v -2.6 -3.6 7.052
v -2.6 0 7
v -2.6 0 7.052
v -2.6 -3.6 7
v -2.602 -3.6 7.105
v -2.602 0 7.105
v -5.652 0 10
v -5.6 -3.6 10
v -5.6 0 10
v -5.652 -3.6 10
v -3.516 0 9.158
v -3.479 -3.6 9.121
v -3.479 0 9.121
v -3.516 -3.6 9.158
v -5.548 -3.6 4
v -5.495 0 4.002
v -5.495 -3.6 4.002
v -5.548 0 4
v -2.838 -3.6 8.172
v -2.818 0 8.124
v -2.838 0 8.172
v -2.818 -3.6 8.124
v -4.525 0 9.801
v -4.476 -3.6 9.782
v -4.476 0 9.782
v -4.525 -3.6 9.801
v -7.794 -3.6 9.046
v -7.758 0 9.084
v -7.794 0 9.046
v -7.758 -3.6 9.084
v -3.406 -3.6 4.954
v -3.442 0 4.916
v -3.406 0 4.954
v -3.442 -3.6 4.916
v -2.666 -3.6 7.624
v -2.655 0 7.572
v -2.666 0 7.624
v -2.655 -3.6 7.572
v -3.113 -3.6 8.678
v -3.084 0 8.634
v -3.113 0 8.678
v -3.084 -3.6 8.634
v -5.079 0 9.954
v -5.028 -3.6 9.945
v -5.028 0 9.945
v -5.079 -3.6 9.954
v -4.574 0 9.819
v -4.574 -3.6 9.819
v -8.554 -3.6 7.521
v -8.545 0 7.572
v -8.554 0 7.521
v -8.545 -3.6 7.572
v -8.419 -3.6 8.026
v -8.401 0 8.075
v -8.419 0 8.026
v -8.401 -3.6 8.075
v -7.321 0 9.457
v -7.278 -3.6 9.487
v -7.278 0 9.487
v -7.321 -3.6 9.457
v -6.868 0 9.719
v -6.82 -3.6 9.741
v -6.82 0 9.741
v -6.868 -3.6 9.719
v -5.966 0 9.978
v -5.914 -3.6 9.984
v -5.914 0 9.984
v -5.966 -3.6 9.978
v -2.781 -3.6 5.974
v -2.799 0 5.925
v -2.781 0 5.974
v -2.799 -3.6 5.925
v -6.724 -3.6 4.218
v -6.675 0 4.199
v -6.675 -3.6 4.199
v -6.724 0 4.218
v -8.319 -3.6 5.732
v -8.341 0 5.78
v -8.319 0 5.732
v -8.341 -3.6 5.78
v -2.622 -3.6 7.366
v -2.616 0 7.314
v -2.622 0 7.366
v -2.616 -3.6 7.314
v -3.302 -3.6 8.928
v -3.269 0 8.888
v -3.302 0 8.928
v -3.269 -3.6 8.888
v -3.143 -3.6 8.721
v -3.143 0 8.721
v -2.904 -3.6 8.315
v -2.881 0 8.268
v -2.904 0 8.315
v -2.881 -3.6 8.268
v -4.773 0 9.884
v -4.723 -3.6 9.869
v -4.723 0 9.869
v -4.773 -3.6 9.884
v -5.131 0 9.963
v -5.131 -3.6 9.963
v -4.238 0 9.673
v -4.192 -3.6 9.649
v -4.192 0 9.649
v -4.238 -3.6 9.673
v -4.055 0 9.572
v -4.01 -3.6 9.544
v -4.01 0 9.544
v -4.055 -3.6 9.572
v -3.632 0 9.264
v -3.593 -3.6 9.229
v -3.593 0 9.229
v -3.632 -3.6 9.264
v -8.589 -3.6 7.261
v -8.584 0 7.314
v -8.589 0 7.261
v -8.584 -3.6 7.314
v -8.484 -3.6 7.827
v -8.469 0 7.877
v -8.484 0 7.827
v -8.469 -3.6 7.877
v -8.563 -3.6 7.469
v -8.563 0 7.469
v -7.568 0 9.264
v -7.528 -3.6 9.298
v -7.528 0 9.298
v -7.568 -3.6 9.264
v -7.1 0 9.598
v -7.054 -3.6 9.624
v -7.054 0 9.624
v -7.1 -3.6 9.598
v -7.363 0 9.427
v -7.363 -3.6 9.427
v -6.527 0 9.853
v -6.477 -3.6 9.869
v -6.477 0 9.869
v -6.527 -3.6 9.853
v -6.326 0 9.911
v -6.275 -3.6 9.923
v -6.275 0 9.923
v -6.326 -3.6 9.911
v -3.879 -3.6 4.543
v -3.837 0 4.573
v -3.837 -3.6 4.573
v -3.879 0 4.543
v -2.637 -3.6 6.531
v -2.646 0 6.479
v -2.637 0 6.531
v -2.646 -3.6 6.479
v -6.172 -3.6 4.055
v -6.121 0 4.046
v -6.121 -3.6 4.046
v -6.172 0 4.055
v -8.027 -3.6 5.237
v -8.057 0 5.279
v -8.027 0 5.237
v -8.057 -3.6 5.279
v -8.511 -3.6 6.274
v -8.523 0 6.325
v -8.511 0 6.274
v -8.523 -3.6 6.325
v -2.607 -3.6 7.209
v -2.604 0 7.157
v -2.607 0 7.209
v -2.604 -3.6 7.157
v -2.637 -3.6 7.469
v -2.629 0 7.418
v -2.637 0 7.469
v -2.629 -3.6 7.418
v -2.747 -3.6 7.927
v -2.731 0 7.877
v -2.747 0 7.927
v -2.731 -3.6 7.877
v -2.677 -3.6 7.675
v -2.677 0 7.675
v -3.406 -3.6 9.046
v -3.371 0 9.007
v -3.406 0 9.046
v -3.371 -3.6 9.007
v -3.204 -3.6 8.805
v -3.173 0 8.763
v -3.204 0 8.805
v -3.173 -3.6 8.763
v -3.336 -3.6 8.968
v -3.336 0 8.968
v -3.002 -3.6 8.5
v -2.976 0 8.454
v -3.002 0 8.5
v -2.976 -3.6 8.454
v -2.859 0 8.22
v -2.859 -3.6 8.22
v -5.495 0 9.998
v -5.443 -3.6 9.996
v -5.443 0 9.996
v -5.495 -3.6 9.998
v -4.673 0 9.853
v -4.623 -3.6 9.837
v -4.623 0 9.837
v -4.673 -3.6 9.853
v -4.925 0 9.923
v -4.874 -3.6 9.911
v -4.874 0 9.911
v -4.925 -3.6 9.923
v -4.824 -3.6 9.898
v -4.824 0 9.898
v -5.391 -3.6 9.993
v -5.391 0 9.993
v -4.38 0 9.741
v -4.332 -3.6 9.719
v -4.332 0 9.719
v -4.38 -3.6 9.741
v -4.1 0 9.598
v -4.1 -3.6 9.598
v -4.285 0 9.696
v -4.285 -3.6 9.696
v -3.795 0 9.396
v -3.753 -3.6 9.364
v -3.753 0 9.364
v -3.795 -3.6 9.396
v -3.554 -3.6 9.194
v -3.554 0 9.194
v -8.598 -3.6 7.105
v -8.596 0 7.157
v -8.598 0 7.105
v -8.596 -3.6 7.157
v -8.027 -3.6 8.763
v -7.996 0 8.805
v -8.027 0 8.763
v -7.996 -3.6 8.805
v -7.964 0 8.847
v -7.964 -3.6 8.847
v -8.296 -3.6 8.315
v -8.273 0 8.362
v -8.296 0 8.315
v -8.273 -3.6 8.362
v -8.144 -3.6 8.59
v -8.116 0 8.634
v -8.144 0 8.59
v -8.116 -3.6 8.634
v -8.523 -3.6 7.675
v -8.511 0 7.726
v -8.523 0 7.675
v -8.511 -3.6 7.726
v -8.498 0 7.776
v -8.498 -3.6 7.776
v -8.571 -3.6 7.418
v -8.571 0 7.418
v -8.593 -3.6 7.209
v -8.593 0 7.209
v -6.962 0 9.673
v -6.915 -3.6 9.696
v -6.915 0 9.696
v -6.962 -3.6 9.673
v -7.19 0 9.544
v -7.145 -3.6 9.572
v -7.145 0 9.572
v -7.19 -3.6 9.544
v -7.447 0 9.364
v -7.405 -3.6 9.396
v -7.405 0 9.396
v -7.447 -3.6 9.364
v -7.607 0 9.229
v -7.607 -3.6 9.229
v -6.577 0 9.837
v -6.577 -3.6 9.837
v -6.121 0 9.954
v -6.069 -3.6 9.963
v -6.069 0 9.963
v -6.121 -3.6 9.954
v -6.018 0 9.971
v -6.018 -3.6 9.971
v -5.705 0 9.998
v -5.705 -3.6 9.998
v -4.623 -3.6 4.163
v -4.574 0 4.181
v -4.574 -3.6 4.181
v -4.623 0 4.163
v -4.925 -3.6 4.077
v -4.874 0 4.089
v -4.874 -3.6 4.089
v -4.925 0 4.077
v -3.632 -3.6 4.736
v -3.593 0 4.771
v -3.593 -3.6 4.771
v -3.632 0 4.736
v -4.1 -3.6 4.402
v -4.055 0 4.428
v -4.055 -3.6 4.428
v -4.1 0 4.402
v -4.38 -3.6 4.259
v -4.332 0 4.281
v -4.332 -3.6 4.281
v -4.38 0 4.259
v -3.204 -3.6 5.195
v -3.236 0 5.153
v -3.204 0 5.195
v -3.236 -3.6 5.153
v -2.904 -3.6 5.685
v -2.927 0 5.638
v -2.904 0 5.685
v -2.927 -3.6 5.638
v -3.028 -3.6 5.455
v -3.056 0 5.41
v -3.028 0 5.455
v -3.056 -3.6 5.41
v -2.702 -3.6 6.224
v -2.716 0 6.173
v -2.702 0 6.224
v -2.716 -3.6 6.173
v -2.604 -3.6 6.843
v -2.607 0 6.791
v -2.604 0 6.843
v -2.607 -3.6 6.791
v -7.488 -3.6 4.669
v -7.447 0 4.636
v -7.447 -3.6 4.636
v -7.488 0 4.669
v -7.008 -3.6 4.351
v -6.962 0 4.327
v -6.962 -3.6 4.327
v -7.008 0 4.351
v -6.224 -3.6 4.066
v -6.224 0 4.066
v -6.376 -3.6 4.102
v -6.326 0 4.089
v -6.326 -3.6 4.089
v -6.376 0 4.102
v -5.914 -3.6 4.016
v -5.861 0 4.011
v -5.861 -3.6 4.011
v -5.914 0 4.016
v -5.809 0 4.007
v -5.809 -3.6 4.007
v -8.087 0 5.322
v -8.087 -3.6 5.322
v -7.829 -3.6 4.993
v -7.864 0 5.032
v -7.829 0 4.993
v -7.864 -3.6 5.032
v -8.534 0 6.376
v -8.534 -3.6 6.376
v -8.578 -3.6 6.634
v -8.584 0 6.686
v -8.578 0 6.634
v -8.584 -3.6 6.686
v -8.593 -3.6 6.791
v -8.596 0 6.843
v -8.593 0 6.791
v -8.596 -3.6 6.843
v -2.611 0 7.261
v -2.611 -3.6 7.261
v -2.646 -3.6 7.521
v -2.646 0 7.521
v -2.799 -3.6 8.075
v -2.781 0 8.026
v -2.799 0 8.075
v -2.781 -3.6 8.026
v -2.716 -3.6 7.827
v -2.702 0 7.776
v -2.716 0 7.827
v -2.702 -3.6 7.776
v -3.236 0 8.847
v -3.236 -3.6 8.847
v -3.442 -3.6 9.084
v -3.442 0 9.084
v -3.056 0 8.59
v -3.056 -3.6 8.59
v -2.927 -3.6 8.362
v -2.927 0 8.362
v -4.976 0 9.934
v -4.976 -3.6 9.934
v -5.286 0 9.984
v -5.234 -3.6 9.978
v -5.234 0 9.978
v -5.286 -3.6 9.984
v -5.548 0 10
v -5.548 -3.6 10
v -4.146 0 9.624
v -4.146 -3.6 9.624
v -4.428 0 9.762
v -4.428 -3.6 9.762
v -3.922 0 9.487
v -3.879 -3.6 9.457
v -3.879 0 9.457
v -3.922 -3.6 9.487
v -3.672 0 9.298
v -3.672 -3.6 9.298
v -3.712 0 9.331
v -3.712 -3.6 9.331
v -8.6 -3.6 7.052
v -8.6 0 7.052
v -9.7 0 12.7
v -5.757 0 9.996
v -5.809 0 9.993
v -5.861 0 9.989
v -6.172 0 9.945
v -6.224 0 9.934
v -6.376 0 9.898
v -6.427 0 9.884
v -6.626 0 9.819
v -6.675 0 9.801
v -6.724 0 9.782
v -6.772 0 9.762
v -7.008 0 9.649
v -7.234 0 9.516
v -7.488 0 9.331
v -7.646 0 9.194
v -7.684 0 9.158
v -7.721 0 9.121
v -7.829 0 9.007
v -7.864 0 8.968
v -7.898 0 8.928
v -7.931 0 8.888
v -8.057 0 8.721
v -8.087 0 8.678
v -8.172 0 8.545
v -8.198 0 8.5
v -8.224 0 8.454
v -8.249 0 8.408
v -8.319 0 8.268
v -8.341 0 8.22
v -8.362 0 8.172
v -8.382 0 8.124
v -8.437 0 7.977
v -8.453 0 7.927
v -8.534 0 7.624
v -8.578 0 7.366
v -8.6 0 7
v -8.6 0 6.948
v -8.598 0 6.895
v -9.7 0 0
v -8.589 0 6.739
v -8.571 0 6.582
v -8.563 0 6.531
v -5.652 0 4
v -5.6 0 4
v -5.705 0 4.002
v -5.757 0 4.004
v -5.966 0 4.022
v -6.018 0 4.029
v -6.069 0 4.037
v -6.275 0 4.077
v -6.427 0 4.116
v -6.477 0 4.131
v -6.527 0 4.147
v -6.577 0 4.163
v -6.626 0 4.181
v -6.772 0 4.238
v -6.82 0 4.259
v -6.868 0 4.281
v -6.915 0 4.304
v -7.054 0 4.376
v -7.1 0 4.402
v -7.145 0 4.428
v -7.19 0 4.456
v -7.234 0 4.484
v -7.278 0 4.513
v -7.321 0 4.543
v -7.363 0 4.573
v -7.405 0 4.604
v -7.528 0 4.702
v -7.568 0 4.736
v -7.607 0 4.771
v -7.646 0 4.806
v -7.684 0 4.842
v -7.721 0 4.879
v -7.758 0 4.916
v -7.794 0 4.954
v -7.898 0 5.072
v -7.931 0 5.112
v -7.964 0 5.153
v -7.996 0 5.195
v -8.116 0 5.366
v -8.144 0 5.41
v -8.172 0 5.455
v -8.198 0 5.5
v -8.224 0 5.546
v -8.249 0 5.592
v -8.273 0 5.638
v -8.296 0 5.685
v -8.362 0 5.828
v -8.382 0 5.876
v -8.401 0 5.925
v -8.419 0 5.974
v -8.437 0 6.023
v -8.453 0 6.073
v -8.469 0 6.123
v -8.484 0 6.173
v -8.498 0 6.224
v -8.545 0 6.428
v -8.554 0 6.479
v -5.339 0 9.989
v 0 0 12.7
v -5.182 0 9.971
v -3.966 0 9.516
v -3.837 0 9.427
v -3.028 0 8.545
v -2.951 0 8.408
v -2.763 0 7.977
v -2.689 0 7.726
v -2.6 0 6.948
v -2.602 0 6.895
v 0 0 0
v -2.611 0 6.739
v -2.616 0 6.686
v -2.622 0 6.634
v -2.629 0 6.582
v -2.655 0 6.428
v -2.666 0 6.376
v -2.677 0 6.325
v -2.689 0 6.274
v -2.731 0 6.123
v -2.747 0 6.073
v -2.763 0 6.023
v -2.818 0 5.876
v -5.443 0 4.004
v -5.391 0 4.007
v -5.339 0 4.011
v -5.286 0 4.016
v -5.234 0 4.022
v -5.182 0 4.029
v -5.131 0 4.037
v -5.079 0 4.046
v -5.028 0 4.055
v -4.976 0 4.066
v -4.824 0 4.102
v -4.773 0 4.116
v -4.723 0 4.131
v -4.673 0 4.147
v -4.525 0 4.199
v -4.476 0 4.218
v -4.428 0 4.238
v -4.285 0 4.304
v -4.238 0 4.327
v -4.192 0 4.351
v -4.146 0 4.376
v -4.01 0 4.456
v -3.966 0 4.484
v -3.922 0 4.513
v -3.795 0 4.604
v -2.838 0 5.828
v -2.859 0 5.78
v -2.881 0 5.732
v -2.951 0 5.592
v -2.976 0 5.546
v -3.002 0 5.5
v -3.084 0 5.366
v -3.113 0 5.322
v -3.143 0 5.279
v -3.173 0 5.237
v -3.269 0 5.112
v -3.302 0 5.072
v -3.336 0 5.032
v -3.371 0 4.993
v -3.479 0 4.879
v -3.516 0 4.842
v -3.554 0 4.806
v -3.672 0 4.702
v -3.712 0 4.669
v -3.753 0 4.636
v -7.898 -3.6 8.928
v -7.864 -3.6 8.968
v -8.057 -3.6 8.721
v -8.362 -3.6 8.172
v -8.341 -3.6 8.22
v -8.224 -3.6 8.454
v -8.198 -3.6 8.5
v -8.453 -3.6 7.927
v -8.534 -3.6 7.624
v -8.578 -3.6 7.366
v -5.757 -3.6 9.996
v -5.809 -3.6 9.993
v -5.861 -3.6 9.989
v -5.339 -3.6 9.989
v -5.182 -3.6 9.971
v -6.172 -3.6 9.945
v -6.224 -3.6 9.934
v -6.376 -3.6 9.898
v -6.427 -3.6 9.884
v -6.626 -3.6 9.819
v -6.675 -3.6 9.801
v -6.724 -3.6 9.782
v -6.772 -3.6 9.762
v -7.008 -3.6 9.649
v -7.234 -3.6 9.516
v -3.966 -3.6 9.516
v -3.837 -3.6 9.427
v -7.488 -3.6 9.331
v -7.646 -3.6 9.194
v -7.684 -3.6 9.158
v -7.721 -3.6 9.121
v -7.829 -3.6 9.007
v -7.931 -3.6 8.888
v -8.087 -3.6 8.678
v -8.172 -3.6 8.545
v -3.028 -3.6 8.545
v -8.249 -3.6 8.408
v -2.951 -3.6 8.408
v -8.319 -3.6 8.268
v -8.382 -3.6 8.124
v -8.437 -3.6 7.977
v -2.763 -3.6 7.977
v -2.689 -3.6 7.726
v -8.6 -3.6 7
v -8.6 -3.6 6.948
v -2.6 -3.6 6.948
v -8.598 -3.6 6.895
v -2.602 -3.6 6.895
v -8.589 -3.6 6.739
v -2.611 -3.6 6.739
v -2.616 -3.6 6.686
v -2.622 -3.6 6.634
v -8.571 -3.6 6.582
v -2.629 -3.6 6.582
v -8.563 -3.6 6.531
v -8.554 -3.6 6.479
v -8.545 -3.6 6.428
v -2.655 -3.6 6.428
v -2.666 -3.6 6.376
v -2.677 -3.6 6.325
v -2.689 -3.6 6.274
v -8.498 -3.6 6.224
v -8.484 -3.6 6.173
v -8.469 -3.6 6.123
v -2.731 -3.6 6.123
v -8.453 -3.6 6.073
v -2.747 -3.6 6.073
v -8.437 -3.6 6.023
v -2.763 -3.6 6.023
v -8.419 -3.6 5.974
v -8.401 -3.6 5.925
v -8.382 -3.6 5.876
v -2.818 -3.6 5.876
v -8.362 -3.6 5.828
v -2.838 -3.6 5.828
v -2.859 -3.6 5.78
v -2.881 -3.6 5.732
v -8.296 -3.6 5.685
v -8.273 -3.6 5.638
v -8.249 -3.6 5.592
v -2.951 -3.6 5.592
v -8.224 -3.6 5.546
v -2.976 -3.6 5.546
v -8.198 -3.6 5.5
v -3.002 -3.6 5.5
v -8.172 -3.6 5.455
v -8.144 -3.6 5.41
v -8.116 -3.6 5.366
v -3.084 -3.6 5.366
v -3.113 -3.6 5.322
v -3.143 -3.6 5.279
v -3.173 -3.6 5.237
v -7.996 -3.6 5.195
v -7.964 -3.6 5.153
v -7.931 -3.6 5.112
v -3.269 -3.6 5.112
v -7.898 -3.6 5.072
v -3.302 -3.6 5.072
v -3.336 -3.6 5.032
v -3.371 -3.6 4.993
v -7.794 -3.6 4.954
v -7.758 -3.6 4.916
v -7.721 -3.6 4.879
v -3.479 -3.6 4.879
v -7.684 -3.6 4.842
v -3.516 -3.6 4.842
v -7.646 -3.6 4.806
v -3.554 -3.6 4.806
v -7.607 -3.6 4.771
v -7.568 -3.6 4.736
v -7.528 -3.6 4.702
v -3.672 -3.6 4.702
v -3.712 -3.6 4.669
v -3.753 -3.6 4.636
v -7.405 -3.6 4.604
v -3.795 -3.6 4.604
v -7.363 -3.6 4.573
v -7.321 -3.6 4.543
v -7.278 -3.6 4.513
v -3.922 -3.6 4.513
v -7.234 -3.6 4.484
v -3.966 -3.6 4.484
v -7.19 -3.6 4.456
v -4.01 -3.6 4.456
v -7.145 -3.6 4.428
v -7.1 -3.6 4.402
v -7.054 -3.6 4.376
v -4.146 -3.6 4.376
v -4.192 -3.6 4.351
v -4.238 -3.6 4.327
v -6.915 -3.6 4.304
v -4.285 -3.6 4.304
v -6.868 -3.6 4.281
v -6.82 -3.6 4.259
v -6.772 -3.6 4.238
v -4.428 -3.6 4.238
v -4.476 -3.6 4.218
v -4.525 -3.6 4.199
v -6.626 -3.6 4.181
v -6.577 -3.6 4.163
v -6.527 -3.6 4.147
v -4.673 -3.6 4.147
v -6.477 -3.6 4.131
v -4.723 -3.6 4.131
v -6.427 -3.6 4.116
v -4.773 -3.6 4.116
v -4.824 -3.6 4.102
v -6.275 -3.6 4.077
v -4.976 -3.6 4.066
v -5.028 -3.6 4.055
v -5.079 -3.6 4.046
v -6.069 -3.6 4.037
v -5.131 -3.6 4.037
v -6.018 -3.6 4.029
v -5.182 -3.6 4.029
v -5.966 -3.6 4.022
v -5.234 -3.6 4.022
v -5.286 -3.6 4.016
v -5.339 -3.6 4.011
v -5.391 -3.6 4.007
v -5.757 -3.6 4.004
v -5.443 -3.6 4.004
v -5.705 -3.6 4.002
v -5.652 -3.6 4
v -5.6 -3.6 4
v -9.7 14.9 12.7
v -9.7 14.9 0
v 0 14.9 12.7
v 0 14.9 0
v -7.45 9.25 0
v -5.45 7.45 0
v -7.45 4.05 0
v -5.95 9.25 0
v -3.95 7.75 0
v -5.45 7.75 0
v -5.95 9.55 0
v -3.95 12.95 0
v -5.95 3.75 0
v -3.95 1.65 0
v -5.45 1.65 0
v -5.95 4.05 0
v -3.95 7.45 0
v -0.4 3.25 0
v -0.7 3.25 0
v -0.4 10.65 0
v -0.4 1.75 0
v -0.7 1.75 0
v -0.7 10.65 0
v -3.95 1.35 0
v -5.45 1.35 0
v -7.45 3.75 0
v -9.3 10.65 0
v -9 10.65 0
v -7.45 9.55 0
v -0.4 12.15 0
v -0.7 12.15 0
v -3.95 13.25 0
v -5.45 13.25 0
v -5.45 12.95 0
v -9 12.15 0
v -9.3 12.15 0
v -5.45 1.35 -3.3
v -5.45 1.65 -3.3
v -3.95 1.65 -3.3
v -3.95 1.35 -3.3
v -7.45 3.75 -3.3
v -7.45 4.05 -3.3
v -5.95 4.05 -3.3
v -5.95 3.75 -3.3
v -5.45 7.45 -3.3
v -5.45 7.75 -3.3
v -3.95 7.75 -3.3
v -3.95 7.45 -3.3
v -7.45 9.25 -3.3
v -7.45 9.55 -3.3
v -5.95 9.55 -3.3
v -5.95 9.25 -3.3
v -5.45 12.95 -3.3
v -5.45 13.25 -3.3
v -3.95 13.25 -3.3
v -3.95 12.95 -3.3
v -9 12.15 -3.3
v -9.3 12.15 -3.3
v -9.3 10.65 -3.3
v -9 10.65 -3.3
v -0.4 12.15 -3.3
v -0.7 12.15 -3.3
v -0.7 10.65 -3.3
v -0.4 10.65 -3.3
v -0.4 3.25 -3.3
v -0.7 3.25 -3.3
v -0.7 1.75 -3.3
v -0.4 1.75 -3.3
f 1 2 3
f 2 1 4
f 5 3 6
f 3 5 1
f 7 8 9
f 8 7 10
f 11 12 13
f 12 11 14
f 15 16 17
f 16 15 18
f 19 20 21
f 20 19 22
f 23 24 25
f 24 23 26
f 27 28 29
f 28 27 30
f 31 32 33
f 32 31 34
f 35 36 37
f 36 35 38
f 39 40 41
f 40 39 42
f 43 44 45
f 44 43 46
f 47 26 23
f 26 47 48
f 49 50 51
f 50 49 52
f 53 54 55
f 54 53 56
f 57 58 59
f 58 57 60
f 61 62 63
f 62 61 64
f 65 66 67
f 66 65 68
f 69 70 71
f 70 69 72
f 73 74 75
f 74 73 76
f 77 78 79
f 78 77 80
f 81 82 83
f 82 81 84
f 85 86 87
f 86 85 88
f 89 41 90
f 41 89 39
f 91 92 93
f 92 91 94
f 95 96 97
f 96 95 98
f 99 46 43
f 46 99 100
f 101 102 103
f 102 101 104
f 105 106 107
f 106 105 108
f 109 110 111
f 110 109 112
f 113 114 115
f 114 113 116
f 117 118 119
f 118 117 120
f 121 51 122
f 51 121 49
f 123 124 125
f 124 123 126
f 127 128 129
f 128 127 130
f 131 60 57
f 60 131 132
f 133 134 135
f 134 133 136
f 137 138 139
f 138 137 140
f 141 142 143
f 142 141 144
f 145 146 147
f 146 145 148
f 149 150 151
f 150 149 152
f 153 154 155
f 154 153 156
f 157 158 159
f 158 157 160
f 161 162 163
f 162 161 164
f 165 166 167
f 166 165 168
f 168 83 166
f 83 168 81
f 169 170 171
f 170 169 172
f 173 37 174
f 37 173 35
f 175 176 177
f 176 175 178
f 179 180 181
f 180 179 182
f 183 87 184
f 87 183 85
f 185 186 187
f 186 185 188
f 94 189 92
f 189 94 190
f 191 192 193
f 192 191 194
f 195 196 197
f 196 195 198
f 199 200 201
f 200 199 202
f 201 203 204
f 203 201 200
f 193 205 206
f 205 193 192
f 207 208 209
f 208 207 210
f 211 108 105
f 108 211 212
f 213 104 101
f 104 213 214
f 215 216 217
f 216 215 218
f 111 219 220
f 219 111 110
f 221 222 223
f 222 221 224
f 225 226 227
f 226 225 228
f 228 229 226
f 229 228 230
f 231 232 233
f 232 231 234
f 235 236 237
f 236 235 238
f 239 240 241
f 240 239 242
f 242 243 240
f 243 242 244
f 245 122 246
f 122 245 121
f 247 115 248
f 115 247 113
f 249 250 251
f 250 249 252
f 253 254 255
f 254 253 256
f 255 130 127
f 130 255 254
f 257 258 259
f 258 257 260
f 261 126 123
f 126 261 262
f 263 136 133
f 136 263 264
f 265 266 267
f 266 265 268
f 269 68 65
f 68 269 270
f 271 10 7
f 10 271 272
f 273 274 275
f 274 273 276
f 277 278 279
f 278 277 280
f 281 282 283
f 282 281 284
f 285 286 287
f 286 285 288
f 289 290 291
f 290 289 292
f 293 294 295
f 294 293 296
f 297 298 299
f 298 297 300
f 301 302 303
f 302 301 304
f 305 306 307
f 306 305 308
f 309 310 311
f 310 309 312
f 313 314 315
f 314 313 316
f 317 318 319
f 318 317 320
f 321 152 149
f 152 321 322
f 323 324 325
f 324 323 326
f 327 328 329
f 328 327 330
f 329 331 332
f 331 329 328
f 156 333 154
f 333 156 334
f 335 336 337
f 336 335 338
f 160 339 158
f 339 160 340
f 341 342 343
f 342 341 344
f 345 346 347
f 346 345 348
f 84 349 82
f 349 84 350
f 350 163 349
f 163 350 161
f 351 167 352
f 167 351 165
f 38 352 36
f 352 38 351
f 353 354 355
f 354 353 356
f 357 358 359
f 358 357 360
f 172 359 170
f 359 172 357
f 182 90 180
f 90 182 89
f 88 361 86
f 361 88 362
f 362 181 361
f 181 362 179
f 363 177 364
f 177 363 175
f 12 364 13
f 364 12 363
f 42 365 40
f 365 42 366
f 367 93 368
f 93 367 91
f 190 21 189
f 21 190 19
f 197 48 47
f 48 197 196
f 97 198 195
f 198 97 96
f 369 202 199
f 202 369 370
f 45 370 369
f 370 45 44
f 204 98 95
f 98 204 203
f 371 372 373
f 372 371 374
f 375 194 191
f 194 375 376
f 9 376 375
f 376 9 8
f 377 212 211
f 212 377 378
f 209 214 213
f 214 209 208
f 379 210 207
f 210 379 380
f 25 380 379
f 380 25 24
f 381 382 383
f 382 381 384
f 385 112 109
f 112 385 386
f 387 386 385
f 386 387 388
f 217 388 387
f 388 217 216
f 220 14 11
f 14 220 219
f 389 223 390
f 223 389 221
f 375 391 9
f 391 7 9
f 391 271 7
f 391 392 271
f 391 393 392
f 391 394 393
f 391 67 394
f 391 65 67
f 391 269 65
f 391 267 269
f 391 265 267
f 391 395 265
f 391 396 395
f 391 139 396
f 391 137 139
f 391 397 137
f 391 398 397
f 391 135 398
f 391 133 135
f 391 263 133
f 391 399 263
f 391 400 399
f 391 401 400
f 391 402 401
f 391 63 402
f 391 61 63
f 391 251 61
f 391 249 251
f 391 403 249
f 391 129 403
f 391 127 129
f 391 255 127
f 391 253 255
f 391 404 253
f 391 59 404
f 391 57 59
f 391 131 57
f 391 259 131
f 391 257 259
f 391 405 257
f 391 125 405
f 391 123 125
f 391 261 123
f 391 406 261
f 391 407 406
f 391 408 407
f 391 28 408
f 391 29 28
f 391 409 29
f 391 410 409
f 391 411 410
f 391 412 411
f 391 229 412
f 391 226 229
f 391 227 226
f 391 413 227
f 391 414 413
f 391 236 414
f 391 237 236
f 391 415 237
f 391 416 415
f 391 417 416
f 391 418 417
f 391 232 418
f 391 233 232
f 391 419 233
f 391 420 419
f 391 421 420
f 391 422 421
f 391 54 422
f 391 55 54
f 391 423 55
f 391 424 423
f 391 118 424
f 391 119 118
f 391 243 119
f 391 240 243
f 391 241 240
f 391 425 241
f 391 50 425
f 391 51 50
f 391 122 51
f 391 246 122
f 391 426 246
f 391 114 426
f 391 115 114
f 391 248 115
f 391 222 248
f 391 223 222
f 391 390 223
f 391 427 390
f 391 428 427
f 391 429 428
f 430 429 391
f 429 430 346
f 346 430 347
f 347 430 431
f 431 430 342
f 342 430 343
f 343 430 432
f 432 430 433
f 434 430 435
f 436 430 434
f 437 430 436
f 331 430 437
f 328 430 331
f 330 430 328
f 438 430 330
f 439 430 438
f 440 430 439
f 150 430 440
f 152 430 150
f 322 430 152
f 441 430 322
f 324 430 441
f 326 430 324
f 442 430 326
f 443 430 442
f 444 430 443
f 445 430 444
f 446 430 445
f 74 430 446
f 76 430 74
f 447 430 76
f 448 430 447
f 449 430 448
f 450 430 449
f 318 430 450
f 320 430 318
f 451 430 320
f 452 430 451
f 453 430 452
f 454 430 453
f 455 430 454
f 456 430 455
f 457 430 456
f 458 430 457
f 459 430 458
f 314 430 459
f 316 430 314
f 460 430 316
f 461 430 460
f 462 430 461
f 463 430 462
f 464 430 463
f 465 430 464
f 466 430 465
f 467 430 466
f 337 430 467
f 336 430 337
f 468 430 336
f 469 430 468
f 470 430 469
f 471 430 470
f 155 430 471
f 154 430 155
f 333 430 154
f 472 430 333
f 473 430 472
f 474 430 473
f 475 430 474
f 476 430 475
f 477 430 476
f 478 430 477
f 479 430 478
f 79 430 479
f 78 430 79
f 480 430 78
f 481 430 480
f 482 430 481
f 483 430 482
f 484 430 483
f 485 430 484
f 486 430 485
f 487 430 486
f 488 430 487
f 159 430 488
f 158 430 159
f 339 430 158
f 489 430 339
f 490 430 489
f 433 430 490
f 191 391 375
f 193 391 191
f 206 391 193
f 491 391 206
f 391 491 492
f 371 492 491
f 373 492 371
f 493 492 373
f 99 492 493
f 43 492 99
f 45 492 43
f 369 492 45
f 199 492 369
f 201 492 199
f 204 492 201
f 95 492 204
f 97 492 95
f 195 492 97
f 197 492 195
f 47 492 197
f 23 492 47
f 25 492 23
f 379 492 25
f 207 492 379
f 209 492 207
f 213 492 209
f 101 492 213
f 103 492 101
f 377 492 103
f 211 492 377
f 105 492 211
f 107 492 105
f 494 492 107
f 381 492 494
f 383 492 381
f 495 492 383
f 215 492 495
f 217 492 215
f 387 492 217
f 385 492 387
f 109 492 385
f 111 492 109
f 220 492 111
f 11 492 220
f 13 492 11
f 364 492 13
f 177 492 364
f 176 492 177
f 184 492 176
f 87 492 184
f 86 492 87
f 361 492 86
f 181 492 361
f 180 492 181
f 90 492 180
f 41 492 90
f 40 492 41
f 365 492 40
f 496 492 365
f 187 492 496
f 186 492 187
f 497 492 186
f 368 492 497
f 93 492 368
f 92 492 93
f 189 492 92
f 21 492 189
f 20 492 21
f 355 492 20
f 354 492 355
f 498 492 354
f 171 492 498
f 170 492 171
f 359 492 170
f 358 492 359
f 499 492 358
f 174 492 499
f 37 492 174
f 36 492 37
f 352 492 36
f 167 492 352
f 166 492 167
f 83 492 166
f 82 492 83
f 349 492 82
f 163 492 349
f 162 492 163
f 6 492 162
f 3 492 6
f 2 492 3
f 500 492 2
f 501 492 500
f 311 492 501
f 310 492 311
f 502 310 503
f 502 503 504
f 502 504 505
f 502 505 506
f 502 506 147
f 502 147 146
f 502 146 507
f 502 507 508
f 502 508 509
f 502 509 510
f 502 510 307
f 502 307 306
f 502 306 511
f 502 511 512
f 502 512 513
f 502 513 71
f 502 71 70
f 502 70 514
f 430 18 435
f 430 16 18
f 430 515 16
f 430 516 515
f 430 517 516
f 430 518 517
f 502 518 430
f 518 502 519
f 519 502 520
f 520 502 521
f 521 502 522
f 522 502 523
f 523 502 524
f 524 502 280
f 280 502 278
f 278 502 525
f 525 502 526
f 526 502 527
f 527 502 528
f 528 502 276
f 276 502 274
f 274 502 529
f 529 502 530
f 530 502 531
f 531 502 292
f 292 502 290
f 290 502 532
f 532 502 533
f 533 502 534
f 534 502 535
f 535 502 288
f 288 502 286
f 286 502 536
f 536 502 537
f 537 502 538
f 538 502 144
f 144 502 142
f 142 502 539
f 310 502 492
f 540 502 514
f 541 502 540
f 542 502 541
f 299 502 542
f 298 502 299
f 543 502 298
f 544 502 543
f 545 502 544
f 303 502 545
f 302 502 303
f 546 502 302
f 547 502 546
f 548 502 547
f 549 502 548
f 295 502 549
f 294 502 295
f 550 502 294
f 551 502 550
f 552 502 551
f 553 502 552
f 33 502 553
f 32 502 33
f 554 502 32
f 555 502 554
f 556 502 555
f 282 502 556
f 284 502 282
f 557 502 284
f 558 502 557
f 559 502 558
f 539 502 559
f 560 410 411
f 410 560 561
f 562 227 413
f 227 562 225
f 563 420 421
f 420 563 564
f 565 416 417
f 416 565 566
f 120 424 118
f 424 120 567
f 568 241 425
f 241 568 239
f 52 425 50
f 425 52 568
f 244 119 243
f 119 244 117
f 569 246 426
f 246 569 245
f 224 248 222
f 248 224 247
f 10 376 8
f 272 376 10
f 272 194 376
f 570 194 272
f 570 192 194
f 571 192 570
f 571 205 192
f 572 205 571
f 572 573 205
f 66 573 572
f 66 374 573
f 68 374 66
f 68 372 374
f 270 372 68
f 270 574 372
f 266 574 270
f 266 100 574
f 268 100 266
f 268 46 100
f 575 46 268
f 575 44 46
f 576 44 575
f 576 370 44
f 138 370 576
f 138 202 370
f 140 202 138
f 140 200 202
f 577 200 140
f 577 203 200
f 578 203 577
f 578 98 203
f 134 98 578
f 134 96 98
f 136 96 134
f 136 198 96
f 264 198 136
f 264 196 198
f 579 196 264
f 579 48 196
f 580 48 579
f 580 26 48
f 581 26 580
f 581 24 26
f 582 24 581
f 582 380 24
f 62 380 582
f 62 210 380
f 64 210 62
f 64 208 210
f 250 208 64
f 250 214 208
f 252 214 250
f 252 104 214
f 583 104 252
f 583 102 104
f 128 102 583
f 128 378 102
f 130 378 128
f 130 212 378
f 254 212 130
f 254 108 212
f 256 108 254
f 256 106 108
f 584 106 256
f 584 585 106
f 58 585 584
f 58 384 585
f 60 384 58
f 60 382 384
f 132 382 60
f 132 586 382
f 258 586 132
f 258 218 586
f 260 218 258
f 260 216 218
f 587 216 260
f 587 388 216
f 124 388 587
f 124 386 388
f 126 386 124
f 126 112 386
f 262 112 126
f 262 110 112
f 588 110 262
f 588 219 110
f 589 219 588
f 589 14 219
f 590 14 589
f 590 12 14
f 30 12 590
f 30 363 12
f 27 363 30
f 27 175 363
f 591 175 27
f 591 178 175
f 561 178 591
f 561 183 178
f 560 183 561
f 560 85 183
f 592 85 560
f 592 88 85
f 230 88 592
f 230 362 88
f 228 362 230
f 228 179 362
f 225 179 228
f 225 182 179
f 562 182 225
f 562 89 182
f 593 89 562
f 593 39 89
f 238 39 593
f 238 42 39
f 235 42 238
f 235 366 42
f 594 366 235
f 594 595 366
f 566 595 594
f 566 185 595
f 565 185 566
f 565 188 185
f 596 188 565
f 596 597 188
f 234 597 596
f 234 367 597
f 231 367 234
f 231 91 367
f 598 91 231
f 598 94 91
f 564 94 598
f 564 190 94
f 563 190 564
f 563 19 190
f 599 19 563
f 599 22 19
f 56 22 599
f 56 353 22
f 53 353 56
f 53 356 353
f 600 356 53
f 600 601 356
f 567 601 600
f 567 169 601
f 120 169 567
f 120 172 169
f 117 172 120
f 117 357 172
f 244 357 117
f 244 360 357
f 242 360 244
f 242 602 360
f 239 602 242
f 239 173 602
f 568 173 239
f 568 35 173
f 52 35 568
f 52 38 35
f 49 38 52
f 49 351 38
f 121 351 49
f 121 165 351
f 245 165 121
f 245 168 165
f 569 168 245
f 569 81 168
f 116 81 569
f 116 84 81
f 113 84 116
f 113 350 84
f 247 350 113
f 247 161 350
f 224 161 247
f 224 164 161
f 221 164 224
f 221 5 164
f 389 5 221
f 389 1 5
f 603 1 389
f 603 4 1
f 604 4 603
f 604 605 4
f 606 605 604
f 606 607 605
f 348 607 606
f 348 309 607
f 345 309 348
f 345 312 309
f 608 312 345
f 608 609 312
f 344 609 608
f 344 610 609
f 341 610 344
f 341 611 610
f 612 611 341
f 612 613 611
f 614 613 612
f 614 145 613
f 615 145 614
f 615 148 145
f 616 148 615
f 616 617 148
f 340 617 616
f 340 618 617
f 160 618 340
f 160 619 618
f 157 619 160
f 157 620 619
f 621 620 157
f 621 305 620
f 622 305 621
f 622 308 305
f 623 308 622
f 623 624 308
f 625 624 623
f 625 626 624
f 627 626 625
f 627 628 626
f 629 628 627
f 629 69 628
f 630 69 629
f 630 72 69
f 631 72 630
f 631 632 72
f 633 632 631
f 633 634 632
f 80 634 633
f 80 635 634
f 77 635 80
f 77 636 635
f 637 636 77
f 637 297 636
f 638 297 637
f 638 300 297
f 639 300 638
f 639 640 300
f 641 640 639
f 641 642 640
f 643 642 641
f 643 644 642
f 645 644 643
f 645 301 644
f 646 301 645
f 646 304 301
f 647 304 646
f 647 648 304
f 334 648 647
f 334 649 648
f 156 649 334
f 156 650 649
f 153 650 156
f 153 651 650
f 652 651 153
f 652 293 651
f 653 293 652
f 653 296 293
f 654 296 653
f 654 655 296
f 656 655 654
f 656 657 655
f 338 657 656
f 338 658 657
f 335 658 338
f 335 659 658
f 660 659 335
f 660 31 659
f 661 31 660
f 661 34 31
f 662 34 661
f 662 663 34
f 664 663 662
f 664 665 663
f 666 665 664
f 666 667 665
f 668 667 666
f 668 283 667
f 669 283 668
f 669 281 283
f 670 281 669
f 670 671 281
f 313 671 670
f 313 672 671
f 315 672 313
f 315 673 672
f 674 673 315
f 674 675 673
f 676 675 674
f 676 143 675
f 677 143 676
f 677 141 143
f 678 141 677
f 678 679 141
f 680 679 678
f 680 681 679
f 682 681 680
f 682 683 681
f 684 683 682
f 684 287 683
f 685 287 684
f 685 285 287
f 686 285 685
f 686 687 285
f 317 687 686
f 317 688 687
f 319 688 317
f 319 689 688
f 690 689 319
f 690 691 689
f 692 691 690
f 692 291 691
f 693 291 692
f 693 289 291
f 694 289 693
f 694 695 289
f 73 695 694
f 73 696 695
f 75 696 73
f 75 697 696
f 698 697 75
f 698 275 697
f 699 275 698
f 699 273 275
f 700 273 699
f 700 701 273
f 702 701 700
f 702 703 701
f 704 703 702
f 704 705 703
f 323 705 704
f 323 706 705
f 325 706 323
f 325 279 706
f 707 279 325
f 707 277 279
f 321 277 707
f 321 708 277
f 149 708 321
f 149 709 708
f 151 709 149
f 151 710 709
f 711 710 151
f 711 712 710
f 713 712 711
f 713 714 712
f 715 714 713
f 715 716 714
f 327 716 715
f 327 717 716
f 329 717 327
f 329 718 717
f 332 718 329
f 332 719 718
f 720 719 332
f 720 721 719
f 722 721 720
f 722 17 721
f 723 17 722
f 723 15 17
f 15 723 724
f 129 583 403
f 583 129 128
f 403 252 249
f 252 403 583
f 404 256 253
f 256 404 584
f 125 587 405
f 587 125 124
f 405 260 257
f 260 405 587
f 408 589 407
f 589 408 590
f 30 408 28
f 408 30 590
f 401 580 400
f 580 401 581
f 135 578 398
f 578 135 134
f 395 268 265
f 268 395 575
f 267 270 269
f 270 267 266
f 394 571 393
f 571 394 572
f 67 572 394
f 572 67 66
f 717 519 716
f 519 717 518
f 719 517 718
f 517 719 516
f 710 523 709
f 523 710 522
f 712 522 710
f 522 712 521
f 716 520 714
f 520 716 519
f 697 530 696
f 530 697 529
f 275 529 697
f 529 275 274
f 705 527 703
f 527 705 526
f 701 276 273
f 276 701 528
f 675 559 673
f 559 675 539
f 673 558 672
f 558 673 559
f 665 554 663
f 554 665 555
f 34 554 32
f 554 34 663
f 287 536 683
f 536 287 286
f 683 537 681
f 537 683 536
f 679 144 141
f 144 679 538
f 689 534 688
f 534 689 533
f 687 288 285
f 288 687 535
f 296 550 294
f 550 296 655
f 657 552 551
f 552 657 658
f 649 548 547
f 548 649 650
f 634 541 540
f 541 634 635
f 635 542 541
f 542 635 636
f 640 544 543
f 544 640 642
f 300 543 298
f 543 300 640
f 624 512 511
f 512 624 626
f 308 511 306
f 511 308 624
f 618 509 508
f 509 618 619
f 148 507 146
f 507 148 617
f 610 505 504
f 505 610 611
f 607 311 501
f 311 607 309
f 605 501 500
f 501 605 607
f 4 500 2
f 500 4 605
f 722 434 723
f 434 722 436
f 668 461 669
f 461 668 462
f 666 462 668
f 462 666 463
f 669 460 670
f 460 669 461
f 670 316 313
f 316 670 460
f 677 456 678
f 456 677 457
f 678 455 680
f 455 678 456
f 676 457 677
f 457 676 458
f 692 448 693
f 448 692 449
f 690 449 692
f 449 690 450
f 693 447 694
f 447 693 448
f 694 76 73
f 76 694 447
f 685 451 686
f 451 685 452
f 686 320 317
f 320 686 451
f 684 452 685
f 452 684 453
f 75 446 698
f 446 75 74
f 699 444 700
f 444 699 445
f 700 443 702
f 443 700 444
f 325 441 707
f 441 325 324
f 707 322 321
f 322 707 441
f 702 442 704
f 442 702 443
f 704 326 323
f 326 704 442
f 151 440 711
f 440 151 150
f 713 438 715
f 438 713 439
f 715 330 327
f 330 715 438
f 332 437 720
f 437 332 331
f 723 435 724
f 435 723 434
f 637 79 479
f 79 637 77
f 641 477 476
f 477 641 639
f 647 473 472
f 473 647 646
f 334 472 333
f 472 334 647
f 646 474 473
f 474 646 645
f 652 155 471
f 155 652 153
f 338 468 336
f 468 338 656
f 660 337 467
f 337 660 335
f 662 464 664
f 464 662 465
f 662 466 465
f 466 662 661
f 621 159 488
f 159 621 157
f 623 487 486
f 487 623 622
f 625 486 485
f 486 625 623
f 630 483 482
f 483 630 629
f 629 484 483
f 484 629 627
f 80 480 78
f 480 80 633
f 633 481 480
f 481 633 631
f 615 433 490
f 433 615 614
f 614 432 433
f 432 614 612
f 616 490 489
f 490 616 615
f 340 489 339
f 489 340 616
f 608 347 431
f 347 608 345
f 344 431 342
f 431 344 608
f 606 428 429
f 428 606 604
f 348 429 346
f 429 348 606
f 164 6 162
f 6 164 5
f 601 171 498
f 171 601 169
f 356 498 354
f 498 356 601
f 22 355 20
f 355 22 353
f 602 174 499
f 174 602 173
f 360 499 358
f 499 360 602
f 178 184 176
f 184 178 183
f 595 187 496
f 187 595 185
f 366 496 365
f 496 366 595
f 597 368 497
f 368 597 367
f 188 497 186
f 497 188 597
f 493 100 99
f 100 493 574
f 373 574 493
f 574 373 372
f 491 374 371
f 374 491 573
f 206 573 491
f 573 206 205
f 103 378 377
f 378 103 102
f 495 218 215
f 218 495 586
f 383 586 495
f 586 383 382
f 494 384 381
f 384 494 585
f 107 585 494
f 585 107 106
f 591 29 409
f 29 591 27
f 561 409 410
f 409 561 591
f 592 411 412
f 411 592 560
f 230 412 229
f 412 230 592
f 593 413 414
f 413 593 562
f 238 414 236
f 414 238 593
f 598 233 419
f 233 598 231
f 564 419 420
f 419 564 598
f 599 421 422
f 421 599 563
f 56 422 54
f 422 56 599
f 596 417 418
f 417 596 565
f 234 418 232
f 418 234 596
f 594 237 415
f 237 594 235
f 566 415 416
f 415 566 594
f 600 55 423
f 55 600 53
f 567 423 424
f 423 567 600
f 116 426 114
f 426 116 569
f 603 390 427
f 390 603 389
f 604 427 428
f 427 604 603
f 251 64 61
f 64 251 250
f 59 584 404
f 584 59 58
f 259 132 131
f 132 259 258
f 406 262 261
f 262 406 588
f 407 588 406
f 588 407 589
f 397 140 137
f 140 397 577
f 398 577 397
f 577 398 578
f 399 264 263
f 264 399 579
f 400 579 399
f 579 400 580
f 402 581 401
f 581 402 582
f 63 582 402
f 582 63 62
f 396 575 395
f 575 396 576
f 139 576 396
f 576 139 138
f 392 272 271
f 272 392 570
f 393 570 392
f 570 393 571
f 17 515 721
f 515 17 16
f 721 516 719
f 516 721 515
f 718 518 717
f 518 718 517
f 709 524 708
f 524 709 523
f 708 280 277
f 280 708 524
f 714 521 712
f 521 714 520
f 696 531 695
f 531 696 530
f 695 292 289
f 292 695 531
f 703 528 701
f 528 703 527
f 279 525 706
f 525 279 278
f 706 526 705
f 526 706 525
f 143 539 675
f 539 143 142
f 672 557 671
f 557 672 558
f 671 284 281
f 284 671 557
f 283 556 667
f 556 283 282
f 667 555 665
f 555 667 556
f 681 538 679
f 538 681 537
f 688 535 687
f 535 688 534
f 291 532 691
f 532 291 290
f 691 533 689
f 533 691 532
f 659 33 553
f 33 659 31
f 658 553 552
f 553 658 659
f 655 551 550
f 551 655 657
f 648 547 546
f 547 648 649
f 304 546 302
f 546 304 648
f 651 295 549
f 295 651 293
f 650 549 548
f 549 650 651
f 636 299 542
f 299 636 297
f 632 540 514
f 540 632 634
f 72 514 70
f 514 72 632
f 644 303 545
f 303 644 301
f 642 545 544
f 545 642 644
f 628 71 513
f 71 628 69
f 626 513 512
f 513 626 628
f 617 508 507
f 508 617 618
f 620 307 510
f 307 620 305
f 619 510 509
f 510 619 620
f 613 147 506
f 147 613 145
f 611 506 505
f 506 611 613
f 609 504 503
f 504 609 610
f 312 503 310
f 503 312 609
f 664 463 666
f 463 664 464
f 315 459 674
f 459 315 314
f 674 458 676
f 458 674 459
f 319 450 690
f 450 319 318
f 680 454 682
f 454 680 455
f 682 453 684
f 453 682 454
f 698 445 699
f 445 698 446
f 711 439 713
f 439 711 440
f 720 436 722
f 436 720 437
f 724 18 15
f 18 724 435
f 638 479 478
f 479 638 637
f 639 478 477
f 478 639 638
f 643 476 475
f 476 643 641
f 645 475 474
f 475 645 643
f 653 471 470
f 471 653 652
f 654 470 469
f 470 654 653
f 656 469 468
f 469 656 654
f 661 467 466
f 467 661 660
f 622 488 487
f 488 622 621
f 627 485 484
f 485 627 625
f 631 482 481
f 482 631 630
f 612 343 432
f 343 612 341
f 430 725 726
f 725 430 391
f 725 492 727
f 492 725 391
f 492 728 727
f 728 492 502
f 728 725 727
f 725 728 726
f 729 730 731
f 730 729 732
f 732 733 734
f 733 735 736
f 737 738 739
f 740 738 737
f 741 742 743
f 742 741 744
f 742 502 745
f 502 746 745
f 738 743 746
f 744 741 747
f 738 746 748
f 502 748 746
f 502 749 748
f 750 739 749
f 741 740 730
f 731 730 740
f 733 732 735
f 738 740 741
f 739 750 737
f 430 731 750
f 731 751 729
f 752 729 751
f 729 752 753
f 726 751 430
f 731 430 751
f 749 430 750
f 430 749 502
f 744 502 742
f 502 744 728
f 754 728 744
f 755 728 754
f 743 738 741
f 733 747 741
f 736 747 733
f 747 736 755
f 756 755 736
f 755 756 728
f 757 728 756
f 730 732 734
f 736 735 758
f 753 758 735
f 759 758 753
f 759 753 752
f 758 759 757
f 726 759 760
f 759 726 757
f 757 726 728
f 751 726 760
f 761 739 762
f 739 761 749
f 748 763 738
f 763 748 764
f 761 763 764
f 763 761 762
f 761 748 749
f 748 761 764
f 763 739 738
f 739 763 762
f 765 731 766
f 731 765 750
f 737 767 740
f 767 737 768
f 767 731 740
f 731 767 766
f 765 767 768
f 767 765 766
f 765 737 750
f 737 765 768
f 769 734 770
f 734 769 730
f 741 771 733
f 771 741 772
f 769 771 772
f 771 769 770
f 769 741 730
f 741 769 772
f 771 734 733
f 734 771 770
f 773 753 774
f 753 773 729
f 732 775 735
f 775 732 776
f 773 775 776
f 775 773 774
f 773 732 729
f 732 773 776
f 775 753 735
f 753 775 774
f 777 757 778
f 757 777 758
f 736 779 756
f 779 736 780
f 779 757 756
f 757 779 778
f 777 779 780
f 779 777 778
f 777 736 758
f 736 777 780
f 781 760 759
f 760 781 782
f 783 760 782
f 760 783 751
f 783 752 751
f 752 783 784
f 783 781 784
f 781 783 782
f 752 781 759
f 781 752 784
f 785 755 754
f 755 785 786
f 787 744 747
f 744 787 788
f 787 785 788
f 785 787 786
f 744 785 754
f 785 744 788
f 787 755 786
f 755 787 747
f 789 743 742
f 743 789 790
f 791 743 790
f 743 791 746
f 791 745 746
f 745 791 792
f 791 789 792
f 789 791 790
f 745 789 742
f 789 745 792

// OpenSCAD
union(){
    translate([-5.6, 0, 7])
    rotate([90, 0, 0])
    cylinder($fn=360, 3.6, d=6);
    
    translate([-9.7,0,0])
    rotate([0, 0, 0])
    cube([9.7, 14.9, 12.7]);
    
    translate([-0.75-5.6+0.9, -0.15+1.5, -3.3])
    cube([1.5, 0.3, 3.3]);
    
    translate([-0.75-5.6-1.1, -0.15+3.9, -3.3])
    cube([1.5, 0.3, 3.3]);
    
    translate([-0.75-5.6+0.9, -0.15+7.6, -3.3])
    cube([1.5, 0.3, 3.3]);
    
    translate([-0.75-5.6-1.1, -0.15+9.4, -3.3])
    cube([1.5, 0.3, 3.3]);
    
    translate([-0.75-5.6+0.9, -0.15+13.1, -3.3])
    cube([1.5, 0.3, 3.3]);
    
    translate([-5.6-3.55, 2.5+8.9, 0])
    rotate([0, 0, 90])
    translate([-0.75, -0.15, -3.3])
    cube([1.5, 0.3, 3.3]);
    
    translate([-5.6-3.55+8.6, 2.5+8.9, 0])
    rotate([0, 0, 90])
    translate([-0.75, -0.15, -3.3])
    cube([1.5, 0.3, 3.3]);
    
    translate([-5.6-3.55+8.6, 2.5, 0])
    rotate([0, 0, 90])
    translate([-0.75, -0.15, -3.3])
    cube([1.5, 0.3, 3.3]);
    
}
